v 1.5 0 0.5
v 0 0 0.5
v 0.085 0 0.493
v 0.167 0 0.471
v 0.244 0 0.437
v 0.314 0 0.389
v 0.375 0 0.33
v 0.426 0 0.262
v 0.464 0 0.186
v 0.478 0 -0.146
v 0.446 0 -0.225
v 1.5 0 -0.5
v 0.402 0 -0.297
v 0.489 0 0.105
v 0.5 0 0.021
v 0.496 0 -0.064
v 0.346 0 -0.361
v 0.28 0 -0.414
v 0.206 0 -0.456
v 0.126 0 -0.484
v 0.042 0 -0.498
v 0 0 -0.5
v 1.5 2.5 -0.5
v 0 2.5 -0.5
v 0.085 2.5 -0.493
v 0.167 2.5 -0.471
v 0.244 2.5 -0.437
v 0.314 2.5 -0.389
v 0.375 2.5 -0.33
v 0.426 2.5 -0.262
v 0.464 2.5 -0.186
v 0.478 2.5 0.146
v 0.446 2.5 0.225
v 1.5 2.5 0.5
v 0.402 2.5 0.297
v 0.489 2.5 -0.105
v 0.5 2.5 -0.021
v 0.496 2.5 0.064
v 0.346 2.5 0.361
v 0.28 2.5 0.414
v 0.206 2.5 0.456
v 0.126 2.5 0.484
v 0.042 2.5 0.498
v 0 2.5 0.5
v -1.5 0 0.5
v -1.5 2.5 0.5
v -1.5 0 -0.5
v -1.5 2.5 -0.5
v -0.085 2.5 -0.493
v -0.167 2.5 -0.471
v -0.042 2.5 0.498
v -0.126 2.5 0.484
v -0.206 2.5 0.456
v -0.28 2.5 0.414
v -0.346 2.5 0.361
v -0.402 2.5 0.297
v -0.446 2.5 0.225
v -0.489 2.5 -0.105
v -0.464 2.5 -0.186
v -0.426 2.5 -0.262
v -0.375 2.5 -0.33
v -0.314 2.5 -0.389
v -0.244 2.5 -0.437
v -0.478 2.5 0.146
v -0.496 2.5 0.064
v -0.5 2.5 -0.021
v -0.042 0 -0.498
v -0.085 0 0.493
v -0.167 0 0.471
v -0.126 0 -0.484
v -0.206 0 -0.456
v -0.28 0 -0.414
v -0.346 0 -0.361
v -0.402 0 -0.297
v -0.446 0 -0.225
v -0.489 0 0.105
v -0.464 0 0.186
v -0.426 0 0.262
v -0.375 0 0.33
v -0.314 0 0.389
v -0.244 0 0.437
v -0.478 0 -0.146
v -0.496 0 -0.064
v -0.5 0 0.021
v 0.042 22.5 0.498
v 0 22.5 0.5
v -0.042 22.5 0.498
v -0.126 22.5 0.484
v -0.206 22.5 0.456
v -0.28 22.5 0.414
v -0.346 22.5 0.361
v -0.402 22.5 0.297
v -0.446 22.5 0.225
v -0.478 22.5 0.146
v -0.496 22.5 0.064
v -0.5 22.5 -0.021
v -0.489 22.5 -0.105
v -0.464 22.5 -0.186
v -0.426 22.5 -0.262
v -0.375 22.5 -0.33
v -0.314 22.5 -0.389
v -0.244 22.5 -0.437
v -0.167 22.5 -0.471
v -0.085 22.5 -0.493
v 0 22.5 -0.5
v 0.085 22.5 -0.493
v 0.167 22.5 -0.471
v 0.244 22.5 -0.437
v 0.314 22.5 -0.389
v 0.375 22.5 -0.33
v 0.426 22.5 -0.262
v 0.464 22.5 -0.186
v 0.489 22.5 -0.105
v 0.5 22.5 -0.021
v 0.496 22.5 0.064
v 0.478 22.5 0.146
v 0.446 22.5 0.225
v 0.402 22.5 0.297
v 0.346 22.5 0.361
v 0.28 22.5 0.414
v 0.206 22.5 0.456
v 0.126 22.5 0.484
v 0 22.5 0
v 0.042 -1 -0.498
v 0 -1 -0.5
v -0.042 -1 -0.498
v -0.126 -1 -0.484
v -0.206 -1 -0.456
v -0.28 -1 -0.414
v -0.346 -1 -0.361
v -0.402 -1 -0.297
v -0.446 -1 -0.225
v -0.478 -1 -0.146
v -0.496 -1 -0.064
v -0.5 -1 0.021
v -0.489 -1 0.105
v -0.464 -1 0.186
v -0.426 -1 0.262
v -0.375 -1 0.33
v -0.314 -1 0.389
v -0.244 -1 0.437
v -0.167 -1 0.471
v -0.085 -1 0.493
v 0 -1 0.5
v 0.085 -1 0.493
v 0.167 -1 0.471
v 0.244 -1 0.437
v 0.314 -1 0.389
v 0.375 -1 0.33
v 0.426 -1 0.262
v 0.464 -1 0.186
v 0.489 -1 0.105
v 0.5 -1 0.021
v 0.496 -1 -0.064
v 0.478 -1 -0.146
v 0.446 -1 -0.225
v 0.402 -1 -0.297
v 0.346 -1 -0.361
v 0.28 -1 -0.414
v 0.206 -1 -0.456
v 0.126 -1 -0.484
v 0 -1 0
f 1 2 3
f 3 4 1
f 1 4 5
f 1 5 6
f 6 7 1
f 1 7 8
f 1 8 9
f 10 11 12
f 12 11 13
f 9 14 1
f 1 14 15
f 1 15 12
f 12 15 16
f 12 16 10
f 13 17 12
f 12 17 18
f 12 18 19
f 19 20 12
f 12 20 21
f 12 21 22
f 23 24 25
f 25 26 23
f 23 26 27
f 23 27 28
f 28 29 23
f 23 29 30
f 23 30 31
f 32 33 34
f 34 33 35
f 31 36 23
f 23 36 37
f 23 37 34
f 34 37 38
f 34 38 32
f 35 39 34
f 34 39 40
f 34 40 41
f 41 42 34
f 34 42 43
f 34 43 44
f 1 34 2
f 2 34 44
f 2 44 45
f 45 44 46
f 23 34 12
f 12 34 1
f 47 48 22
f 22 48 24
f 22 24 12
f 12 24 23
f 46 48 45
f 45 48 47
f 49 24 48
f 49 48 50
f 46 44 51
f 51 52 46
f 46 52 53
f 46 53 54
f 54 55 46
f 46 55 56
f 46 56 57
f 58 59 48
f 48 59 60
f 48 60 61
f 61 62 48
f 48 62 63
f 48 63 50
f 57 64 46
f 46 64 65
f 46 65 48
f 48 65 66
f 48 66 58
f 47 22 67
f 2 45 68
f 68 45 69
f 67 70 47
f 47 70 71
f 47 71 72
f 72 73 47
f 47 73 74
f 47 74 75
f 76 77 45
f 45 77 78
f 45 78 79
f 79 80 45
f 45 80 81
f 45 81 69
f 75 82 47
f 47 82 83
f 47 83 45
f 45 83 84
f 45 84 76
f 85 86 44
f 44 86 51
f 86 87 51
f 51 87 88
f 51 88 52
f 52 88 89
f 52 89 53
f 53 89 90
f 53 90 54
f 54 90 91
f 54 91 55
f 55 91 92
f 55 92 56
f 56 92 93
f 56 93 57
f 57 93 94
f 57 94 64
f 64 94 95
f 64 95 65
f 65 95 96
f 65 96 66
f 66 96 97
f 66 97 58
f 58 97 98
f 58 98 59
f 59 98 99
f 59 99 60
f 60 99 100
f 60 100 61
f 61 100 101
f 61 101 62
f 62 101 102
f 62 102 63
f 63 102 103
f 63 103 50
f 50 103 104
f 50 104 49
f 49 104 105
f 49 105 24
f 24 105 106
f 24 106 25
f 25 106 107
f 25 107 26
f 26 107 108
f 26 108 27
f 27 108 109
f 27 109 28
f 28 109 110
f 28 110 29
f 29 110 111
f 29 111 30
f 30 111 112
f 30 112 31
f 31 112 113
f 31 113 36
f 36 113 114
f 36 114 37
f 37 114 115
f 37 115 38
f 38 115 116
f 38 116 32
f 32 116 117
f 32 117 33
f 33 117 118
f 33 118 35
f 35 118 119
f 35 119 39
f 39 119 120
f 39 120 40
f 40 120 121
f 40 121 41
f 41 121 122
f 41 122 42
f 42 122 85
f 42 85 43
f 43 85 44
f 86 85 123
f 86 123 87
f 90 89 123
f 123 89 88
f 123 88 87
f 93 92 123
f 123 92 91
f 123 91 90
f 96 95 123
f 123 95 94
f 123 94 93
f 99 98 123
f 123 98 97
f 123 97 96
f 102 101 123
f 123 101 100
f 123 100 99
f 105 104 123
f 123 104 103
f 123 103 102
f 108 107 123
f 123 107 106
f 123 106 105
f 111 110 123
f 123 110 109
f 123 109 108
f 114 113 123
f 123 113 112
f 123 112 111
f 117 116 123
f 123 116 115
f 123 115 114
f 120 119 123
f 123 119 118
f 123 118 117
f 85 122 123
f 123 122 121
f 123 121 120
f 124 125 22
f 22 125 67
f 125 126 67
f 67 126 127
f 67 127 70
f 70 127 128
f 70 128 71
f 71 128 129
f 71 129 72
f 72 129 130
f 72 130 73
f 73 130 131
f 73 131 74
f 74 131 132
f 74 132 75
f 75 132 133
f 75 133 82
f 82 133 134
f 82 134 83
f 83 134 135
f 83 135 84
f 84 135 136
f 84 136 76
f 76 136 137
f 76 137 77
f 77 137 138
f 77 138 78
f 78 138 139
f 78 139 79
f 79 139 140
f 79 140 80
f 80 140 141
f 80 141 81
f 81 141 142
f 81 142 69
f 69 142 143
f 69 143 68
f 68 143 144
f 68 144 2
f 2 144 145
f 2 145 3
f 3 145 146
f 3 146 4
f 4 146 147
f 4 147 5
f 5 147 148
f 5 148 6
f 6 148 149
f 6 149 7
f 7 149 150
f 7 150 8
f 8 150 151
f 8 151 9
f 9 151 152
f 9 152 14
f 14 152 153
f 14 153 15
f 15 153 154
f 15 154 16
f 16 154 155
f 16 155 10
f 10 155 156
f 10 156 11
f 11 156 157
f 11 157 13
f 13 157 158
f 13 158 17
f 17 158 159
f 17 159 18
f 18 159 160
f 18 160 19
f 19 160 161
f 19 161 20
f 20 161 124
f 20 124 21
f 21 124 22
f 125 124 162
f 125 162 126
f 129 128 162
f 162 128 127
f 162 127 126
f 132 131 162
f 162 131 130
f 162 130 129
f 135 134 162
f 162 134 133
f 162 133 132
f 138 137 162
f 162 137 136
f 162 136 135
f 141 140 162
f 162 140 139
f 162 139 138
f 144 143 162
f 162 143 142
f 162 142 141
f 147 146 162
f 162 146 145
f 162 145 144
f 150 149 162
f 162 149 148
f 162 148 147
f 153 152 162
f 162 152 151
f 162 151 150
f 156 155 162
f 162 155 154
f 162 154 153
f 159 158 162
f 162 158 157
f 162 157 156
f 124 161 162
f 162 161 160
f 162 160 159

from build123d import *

# Parameters (mm, degrees)
SKETCH1_W           = 3
SKETCH1_H           = 1
BOSS_EXTRUDE1_DEPTH = 2.5
SKETCH2_R           = 0.5
BOSS_EXTRUDE2_DEPTH = 20
BOSS_EXTRUDE3_START = 1
SKETCH3_R           = 0.5
BOSS_EXTRUDE3_DEPTH = 1


with BuildPart() as part:
    # Sketch1 → Boss-Extrude1 (new body)
    with BuildSketch(Plane(origin=(0, 0, 0), x_dir=(1, 0, 0), z_dir=(0, 1, 0))):
        Rectangle(SKETCH1_W, SKETCH1_H)
    extrude(amount=BOSS_EXTRUDE1_DEPTH)

    # Sketch2 → Boss-Extrude2 (add)
    with BuildSketch(Plane(origin=(0, 2.5, 0), x_dir=(1, 0, 0), z_dir=(0, 1, 0))):
        with Locations(Location((0, 0, 0), (0, 0, 270))):
            Circle(SKETCH2_R)
    extrude(amount=BOSS_EXTRUDE2_DEPTH)

    # Sketch3 → Boss-Extrude3 (add)
    with BuildSketch(Plane.XZ.offset(BOSS_EXTRUDE3_START)):
        with Locations(Location((0, 0, 0), (0, 0, 90))):
            Circle(SKETCH3_R)
    extrude(amount=-BOSS_EXTRUDE3_DEPTH)


solid = part.part
